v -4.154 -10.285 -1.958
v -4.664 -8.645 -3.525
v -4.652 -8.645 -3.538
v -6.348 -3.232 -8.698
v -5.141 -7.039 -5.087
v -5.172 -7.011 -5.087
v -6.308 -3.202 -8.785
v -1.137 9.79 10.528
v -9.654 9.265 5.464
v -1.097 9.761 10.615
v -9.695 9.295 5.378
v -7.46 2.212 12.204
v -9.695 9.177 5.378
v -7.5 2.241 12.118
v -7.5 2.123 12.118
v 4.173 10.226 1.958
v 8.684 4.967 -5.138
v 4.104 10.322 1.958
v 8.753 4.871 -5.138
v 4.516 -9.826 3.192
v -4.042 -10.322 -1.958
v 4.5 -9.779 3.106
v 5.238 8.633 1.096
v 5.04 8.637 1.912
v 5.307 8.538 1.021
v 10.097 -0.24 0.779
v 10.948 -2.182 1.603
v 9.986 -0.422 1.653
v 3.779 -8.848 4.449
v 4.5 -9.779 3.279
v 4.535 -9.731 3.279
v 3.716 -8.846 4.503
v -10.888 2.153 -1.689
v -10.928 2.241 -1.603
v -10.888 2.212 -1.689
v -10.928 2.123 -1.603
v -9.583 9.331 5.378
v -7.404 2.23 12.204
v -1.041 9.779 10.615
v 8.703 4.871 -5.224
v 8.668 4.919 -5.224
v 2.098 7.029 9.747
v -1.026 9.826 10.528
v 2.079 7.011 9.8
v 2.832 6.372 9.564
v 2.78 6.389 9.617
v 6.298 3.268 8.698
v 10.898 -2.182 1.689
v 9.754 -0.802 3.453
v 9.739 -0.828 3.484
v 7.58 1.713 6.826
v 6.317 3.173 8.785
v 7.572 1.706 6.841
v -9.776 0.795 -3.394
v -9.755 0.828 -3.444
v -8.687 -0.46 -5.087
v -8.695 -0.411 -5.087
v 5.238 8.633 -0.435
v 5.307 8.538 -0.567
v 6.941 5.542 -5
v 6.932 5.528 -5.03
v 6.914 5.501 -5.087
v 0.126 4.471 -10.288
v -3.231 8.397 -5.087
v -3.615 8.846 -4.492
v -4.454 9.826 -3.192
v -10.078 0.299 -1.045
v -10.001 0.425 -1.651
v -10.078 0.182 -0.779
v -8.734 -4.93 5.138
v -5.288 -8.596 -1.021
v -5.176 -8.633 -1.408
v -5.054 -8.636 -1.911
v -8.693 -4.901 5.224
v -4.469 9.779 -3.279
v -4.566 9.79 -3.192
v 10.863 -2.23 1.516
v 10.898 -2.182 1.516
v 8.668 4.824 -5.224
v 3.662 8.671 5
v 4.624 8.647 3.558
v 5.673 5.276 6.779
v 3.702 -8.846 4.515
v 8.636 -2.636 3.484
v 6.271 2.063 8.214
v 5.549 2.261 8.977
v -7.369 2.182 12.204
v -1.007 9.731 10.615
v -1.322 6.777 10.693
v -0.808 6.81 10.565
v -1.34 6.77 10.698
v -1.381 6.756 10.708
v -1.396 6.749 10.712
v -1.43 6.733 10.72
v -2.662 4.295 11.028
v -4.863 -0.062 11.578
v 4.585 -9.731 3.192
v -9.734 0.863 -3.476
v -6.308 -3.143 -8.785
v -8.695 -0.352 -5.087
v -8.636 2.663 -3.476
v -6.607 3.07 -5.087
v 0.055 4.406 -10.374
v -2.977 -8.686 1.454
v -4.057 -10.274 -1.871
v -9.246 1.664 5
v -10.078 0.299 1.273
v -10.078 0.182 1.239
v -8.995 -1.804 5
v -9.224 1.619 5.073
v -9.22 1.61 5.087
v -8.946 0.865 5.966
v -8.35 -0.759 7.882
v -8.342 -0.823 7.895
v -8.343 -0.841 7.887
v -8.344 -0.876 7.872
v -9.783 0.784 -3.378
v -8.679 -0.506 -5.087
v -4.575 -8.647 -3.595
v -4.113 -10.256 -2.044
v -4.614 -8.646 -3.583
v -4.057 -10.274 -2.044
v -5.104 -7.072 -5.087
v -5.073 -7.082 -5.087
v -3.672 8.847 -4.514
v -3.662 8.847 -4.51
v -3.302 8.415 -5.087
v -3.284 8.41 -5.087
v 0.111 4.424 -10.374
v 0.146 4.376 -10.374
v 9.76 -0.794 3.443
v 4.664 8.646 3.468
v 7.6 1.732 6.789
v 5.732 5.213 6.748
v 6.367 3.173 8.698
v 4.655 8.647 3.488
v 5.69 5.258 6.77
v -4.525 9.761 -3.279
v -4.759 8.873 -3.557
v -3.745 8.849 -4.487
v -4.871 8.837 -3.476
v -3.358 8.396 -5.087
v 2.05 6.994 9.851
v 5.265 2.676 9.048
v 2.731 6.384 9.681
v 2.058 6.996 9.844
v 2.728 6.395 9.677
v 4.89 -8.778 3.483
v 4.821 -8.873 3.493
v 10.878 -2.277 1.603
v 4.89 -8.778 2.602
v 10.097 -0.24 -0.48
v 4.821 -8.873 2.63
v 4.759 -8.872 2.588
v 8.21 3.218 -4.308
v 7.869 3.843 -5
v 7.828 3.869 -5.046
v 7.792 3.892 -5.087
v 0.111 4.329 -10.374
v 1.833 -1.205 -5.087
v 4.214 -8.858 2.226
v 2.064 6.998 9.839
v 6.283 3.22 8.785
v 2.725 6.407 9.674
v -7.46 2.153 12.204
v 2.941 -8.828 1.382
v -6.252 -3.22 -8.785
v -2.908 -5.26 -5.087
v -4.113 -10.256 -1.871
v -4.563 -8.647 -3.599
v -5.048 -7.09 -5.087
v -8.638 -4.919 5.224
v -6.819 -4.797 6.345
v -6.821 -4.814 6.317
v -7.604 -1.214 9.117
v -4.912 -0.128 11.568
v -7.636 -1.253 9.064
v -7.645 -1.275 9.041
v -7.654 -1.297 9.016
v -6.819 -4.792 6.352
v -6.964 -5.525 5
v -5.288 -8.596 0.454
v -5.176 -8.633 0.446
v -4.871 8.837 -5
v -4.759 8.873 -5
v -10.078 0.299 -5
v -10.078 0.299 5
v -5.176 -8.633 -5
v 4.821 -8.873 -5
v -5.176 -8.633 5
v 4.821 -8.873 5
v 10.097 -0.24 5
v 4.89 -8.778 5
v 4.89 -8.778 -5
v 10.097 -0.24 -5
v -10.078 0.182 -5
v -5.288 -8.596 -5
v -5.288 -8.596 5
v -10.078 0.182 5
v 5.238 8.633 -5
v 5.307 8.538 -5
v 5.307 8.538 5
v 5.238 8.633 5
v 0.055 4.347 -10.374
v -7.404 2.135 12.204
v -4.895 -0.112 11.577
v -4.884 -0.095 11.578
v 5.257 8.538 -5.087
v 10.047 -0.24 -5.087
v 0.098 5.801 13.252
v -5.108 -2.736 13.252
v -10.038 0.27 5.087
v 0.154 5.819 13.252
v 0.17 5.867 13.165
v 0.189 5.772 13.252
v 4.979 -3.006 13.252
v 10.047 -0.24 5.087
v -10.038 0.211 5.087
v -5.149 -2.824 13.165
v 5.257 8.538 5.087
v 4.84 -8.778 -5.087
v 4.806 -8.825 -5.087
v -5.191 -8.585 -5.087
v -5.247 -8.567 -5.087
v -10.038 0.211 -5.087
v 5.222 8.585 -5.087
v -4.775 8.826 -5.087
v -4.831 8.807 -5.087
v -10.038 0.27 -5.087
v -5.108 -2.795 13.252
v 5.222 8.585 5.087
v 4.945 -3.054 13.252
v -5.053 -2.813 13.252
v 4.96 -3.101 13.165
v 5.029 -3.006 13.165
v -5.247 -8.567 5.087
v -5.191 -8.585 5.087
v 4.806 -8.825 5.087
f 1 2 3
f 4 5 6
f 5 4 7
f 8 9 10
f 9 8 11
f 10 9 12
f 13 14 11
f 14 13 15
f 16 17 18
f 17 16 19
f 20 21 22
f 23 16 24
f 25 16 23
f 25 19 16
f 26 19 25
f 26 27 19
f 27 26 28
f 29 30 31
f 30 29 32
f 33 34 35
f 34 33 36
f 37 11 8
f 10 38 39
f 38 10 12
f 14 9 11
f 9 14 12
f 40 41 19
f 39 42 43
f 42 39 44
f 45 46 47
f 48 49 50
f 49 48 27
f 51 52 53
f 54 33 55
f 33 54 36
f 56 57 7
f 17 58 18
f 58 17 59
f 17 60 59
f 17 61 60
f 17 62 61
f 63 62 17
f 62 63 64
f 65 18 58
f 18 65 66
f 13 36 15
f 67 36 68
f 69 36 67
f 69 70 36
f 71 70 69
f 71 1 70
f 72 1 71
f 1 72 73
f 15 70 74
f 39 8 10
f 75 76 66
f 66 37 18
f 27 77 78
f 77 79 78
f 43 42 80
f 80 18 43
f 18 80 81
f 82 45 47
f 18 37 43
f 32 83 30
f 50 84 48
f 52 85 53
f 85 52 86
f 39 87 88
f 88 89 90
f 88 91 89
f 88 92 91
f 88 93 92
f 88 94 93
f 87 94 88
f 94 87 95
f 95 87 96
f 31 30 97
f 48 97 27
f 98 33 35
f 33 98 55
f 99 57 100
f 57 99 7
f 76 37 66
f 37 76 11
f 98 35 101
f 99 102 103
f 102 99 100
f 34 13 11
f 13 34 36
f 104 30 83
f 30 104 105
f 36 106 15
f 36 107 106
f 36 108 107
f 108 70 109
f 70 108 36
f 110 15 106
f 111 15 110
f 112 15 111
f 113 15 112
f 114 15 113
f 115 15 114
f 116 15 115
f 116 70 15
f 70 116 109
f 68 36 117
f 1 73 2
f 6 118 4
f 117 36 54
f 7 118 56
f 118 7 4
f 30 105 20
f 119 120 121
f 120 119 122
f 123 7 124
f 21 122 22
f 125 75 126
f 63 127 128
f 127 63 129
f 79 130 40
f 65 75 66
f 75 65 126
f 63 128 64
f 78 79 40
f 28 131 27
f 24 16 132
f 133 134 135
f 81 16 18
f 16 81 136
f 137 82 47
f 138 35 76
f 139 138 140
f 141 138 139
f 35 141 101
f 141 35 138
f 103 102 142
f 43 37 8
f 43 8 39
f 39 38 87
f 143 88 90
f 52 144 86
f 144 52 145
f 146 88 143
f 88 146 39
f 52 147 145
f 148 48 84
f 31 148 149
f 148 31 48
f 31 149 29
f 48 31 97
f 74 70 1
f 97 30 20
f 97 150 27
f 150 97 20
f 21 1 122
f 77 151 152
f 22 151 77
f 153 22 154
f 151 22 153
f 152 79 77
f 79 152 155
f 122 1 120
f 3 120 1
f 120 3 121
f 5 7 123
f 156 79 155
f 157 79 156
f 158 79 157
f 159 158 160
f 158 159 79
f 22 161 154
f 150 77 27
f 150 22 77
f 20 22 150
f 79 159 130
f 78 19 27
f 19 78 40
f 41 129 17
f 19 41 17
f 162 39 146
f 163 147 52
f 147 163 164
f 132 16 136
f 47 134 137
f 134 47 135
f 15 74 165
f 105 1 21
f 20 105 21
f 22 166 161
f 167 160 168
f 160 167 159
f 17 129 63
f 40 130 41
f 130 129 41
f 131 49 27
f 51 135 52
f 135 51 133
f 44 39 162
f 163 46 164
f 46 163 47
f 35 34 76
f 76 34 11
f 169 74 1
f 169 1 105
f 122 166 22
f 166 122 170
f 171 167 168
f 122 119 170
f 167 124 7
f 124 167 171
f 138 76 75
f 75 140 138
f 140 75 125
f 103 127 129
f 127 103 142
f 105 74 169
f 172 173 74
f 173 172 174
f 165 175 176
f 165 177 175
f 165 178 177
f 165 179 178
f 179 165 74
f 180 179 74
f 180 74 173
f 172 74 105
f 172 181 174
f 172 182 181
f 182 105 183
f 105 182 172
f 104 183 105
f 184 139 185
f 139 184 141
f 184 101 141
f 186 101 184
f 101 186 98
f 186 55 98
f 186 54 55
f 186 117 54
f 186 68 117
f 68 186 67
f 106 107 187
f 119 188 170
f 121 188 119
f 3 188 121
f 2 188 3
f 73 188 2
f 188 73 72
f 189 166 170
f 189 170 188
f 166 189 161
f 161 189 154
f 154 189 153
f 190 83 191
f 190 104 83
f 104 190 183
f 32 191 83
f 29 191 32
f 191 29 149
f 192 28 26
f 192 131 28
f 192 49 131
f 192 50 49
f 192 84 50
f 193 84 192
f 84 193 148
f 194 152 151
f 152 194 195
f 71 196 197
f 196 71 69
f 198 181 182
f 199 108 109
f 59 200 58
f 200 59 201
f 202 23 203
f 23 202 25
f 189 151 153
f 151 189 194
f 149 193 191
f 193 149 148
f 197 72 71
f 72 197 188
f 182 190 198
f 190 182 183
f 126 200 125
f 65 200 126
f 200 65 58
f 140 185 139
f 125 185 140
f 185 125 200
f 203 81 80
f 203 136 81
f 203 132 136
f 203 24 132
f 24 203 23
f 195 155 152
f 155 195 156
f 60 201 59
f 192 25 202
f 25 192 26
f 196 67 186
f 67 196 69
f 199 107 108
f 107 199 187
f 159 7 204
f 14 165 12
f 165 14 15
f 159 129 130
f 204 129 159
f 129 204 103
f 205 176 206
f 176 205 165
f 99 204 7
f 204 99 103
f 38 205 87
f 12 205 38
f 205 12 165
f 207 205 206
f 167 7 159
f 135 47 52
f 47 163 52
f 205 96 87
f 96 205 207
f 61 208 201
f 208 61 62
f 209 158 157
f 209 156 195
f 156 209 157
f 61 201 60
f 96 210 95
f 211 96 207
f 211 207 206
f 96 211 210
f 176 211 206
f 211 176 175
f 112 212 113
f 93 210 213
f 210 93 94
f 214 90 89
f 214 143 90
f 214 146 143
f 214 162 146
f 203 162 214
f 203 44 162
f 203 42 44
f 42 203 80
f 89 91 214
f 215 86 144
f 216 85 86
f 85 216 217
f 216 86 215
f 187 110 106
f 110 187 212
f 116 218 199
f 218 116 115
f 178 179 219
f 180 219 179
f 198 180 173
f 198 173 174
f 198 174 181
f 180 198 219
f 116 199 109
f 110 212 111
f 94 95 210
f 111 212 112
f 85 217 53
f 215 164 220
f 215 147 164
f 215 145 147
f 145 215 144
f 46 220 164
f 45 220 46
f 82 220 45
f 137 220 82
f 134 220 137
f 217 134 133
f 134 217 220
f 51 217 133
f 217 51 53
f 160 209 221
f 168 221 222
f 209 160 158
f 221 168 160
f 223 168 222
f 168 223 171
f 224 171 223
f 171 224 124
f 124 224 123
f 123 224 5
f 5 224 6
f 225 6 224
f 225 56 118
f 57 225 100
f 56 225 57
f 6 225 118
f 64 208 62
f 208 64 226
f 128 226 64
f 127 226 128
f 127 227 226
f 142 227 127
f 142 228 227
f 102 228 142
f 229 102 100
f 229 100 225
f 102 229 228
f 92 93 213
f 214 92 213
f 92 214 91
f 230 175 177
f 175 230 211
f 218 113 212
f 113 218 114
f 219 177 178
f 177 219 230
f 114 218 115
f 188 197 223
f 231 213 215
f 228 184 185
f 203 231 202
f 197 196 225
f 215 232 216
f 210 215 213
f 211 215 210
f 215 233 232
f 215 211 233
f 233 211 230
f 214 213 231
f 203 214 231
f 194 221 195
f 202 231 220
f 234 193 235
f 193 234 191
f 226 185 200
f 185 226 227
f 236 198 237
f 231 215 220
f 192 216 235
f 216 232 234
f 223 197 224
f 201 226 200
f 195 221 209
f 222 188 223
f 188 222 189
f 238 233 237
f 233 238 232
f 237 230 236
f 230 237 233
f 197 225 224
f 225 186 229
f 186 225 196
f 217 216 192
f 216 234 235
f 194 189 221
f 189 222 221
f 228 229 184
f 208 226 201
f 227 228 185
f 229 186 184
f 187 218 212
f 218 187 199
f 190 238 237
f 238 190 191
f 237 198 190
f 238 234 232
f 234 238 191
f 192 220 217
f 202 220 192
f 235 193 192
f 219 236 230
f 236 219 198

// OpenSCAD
// Auto-generated OpenSCAD file

    inner_points = 10*[[-0.5206742858014932, -0.8537545783635307, 0.5000000000005902], [0.5206728937674587, 0.8537570765312255, -0.5000000000005902], [-0.9997117261075887, 0.024039891191902935, -0.5000000000008494], [0.9997103340735543, -0.024037393024208206, 0.5000000000008494], [-0.47903813632434417, 0.877795718641069, 0.4999999999985605], [0.47903674429030957, -0.8777932204733743, -0.4999999999985605], [-0.47903813632352327, 0.8777957186398769, -0.5000000000014396], [0.47903674428948867, -0.8777932204721822, 0.5000000000014396], [0.5206728937666378, 0.8537570765324173, 0.4999999999994098], [-0.5206742858006723, -0.8537545783647226, -0.4999999999994098], [-0.9997117261084095, 0.024039891193094905, 0.49999999999915057], [0.999710334074375, -0.024037393025400176, -0.49999999999915057], [0.013878020474284998, 0.5771846814202832, 1.3164965809270497], [-0.5067955693097805, -0.2765711460276909, 1.3164965809276397], [0.4929154607812014, -0.30060978813634254, 1.3164965809284892]];

    outer_points = 10*[[-0.009559115747354546, -0.4376223667561964, 1.0287834016063993], [0.009559115747354546, 0.4376223667561964, -1.0287834016063993], [-0.4072695443938975, -1.0226427455134965, -0.19578900188162973], [0.4072695443938975, 1.0226427455134965, 0.19578900188162973], [-1.0847562624532703, 0.21822357574934653, -0.1602570499403399], [1.0847562624532703, -0.21822357574934653, 0.1602570499403399], [-0.6267257065821188, -0.3172723939217513, -0.8698006189721327], [0.6267257065821188, 0.3172723939217513, 0.8698006189721327], [-0.448471440123797, 0.9731183364272943, -0.31923983257460653], [0.448471440123797, -0.9731183364272943, 0.31923983257460653], [-0.8653001002650492, -0.4871467758423988, 0.513754567150163], [0.8653001002650492, 0.4871467758423988, -0.513754567150163], [-0.9613947096667688, 0.9235939273410919, 0.5377648654673648], [-0.7419385474785475, 0.21822357574934653, 1.2117764825578676], [-0.10565372514907426, 0.9731183364272943, 1.052793699923601]];

    // Convex hull for inner set (I)
    module inner_hull() {
        hull() {
            for (p = inner_points) {
                translate(p) sphere(r=0.1);
            }
        }
    }

    // Convex hull for outer set (O) minus inner hull (O \ I)
    module outer_minus_inner() {
        difference() {
            hull() {
                for (p = outer_points) {
                    translate(p) sphere(r=0.1);
                }
            }
            inner_hull(); // Subtract inner hull
        }
    }

    // Convex hull for outer set (O) minus all translated inner hulls
    module outer_minus_AllTranslationInner() {
        difference() {
            hull() {
                for (p = outer_points) {
                    translate(p) sphere(r=0.1);
                }
            }
            hull() {
                translate([0,0,50]) inner_hull();
                translate([0,0,-50]) inner_hull();
            }; // Subtract translated inner hulls
        }
    }

    // Difference between outer_minus_inner and outer_minus_AllTranslationInner
    module outer_minus_inner_diff() {
        difference() {
            // Outer minus inner
            difference() {
                hull() {
                    for (p = outer_points) {
                        translate(p) sphere(r=0.1);
                    }
                }
                inner_hull();
            }

            // Subtract Outer minus AllTranslationInner
            difference() {
                hull() {
                    for (p = outer_points) {
                        translate(p) sphere(r=0.1);
                    }
                }
                hull() {
                    translate([0,0,50]) inner_hull();
                    translate([0,0,-50]) inner_hull();
                };
            }
        }
    }

    // Rendering all with colors applied
    color([1, 0, 0, 0.5]) inner_hull(); // Transparent red
    color([0, 1, 0, 1]) outer_minus_AllTranslationInner(); // Opaque green
    color([1, 1, 0, 1]) outer_minus_inner_diff(); // Opaque yellow
    
